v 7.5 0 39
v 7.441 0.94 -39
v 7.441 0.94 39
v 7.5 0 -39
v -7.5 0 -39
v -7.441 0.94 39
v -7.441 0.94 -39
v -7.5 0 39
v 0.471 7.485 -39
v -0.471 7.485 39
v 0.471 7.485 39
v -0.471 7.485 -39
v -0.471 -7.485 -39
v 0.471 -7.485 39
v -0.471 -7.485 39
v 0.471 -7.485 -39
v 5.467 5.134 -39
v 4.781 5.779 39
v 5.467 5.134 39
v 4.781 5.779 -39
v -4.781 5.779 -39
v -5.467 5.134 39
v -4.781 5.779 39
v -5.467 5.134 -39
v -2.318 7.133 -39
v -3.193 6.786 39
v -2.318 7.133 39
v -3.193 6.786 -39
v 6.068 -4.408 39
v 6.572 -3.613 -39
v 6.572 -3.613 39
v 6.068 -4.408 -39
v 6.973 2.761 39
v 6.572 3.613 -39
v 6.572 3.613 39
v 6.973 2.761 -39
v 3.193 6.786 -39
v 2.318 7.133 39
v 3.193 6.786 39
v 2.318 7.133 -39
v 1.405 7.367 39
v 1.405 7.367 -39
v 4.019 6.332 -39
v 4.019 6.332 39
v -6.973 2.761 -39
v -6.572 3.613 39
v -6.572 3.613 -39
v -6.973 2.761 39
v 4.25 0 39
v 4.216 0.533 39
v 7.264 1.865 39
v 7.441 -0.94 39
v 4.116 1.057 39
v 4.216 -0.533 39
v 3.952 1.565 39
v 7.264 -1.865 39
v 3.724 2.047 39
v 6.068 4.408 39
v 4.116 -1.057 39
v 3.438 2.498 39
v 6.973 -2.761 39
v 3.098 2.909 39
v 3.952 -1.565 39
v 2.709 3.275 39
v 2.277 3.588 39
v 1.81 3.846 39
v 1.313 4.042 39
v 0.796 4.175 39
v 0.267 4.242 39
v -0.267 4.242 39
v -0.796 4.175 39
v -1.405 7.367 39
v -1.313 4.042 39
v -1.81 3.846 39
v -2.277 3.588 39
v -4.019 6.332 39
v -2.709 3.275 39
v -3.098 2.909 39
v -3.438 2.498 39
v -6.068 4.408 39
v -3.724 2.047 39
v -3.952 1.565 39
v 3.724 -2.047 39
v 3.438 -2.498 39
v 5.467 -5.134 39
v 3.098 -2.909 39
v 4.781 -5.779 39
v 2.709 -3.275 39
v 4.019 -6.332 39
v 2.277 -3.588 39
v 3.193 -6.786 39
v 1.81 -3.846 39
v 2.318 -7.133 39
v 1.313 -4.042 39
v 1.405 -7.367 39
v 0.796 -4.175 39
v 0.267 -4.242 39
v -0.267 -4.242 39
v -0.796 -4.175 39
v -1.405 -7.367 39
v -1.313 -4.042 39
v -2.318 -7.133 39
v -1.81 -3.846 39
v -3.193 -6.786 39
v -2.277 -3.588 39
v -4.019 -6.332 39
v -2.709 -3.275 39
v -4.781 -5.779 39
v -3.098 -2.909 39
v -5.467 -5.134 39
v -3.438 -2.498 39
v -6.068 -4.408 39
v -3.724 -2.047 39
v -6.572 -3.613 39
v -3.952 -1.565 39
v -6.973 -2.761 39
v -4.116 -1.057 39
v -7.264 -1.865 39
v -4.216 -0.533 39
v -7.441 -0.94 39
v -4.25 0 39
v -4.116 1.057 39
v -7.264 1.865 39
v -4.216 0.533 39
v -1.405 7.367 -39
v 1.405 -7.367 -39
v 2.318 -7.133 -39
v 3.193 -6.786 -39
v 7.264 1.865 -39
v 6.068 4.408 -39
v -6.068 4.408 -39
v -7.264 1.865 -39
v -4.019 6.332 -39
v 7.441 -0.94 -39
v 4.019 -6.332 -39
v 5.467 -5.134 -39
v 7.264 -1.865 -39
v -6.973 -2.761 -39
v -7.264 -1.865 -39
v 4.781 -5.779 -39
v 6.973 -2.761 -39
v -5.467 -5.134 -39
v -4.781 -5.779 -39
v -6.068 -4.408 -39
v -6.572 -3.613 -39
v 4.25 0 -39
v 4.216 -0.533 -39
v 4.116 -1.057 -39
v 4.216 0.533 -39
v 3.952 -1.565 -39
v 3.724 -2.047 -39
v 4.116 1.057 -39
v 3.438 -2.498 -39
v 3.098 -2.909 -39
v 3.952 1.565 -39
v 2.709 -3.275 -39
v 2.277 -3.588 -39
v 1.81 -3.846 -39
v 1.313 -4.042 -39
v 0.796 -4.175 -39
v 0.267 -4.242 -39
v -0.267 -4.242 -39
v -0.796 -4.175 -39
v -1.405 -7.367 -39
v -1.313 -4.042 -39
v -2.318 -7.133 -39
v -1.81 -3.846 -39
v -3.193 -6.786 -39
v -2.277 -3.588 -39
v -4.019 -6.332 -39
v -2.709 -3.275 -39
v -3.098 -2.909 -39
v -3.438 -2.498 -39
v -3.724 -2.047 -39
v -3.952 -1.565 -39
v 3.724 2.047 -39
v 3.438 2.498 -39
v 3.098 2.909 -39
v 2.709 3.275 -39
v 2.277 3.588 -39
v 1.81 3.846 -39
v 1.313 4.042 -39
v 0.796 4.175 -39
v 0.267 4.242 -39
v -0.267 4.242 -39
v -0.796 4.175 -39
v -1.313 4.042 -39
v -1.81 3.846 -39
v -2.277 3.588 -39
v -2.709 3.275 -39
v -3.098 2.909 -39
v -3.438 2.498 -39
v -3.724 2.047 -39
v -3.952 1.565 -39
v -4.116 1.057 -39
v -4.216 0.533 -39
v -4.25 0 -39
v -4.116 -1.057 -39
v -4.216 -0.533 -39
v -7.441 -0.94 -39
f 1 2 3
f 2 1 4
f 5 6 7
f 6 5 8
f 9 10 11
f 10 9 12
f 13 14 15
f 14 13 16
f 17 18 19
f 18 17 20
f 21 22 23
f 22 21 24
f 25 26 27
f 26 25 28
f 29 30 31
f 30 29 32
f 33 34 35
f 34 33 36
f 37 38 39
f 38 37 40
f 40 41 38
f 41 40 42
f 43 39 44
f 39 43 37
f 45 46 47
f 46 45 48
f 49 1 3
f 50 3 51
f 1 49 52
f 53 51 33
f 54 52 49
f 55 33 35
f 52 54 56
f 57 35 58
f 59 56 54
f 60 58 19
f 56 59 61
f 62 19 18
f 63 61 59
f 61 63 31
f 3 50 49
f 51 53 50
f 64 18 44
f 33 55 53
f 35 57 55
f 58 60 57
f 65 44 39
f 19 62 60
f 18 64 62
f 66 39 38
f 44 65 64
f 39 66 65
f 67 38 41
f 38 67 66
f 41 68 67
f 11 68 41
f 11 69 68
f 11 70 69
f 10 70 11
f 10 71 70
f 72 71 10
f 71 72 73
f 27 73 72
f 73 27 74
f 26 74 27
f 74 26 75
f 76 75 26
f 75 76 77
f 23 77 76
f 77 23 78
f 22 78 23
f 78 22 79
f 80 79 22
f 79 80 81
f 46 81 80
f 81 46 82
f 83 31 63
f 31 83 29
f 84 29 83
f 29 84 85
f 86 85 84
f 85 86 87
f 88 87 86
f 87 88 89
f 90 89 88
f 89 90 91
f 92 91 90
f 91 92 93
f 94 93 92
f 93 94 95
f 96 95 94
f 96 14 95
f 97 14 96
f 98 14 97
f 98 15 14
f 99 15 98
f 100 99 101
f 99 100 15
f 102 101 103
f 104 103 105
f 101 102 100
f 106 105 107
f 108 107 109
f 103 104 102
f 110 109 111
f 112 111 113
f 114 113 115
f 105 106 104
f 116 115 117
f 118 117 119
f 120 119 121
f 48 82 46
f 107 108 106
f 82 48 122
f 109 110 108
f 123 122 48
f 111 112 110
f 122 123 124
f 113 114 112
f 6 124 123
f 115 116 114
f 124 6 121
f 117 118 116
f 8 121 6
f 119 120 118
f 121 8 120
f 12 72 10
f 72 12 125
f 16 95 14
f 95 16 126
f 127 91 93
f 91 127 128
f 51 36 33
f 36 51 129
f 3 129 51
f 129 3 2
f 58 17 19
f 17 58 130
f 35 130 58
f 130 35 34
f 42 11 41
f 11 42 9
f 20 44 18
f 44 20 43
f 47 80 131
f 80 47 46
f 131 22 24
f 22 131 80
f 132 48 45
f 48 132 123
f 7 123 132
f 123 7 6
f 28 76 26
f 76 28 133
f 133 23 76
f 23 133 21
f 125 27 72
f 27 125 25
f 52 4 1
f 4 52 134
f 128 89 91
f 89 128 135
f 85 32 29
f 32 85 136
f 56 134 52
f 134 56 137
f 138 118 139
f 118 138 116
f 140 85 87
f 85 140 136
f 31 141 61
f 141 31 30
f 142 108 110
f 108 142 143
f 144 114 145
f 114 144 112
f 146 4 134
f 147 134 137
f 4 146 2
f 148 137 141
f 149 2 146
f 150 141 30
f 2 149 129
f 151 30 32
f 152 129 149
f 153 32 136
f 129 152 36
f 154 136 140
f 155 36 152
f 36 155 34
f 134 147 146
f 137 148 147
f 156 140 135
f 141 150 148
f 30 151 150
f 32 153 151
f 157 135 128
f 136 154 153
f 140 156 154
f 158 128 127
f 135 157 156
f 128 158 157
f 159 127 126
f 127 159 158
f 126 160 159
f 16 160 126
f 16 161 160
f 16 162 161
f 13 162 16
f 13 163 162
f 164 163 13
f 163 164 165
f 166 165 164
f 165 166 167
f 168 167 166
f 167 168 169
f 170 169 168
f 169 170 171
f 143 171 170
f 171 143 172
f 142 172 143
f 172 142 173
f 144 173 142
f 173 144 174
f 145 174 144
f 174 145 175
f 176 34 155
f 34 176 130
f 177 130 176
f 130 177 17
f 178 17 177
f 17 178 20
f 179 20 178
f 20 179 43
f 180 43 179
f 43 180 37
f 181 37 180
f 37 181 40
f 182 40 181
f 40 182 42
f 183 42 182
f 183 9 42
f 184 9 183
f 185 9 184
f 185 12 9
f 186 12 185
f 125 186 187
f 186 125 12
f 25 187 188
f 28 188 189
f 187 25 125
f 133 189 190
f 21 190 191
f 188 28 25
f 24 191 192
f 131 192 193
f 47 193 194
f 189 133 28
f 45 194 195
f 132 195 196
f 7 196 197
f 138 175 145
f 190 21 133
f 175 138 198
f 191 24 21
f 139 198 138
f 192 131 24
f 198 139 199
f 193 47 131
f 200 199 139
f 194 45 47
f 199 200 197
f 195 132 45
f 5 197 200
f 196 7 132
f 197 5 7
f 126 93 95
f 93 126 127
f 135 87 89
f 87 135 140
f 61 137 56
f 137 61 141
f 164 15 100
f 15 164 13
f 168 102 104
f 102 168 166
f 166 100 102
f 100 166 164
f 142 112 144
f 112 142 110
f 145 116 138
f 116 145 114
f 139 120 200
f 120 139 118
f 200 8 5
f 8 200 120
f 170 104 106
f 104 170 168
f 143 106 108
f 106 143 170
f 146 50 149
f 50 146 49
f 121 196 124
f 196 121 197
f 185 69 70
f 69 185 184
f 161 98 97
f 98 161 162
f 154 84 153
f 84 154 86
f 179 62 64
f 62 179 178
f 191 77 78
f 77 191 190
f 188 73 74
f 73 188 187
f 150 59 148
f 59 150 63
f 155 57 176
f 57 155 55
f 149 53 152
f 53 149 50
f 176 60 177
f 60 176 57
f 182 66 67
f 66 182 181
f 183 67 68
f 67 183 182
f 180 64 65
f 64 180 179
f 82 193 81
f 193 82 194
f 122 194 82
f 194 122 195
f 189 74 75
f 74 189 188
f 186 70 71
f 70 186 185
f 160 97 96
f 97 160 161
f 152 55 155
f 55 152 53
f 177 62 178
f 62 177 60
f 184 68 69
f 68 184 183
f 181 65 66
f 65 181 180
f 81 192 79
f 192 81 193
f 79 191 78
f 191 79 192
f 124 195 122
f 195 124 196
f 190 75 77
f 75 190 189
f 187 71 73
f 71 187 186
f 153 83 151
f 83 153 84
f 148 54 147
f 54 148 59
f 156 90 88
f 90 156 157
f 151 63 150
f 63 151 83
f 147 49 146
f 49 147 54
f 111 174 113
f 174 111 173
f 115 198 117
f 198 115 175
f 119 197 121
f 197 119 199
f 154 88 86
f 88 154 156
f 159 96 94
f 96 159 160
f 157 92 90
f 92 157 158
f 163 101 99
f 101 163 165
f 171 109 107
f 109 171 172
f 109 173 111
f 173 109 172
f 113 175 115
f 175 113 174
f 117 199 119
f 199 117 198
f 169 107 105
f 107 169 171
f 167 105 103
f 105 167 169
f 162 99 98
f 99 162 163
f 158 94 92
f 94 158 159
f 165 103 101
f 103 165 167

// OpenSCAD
$fn = 50;


difference() {
	union() {
		translate(v = [0, 0, -39.0000000000]) {
			cylinder(h = 78, r = 7.5000000000);
		}
	}
	union() {
		translate(v = [0, 0, -100.0000000000]) {
			cylinder(h = 200, r = 4.2500000000);
		}
	}
}
